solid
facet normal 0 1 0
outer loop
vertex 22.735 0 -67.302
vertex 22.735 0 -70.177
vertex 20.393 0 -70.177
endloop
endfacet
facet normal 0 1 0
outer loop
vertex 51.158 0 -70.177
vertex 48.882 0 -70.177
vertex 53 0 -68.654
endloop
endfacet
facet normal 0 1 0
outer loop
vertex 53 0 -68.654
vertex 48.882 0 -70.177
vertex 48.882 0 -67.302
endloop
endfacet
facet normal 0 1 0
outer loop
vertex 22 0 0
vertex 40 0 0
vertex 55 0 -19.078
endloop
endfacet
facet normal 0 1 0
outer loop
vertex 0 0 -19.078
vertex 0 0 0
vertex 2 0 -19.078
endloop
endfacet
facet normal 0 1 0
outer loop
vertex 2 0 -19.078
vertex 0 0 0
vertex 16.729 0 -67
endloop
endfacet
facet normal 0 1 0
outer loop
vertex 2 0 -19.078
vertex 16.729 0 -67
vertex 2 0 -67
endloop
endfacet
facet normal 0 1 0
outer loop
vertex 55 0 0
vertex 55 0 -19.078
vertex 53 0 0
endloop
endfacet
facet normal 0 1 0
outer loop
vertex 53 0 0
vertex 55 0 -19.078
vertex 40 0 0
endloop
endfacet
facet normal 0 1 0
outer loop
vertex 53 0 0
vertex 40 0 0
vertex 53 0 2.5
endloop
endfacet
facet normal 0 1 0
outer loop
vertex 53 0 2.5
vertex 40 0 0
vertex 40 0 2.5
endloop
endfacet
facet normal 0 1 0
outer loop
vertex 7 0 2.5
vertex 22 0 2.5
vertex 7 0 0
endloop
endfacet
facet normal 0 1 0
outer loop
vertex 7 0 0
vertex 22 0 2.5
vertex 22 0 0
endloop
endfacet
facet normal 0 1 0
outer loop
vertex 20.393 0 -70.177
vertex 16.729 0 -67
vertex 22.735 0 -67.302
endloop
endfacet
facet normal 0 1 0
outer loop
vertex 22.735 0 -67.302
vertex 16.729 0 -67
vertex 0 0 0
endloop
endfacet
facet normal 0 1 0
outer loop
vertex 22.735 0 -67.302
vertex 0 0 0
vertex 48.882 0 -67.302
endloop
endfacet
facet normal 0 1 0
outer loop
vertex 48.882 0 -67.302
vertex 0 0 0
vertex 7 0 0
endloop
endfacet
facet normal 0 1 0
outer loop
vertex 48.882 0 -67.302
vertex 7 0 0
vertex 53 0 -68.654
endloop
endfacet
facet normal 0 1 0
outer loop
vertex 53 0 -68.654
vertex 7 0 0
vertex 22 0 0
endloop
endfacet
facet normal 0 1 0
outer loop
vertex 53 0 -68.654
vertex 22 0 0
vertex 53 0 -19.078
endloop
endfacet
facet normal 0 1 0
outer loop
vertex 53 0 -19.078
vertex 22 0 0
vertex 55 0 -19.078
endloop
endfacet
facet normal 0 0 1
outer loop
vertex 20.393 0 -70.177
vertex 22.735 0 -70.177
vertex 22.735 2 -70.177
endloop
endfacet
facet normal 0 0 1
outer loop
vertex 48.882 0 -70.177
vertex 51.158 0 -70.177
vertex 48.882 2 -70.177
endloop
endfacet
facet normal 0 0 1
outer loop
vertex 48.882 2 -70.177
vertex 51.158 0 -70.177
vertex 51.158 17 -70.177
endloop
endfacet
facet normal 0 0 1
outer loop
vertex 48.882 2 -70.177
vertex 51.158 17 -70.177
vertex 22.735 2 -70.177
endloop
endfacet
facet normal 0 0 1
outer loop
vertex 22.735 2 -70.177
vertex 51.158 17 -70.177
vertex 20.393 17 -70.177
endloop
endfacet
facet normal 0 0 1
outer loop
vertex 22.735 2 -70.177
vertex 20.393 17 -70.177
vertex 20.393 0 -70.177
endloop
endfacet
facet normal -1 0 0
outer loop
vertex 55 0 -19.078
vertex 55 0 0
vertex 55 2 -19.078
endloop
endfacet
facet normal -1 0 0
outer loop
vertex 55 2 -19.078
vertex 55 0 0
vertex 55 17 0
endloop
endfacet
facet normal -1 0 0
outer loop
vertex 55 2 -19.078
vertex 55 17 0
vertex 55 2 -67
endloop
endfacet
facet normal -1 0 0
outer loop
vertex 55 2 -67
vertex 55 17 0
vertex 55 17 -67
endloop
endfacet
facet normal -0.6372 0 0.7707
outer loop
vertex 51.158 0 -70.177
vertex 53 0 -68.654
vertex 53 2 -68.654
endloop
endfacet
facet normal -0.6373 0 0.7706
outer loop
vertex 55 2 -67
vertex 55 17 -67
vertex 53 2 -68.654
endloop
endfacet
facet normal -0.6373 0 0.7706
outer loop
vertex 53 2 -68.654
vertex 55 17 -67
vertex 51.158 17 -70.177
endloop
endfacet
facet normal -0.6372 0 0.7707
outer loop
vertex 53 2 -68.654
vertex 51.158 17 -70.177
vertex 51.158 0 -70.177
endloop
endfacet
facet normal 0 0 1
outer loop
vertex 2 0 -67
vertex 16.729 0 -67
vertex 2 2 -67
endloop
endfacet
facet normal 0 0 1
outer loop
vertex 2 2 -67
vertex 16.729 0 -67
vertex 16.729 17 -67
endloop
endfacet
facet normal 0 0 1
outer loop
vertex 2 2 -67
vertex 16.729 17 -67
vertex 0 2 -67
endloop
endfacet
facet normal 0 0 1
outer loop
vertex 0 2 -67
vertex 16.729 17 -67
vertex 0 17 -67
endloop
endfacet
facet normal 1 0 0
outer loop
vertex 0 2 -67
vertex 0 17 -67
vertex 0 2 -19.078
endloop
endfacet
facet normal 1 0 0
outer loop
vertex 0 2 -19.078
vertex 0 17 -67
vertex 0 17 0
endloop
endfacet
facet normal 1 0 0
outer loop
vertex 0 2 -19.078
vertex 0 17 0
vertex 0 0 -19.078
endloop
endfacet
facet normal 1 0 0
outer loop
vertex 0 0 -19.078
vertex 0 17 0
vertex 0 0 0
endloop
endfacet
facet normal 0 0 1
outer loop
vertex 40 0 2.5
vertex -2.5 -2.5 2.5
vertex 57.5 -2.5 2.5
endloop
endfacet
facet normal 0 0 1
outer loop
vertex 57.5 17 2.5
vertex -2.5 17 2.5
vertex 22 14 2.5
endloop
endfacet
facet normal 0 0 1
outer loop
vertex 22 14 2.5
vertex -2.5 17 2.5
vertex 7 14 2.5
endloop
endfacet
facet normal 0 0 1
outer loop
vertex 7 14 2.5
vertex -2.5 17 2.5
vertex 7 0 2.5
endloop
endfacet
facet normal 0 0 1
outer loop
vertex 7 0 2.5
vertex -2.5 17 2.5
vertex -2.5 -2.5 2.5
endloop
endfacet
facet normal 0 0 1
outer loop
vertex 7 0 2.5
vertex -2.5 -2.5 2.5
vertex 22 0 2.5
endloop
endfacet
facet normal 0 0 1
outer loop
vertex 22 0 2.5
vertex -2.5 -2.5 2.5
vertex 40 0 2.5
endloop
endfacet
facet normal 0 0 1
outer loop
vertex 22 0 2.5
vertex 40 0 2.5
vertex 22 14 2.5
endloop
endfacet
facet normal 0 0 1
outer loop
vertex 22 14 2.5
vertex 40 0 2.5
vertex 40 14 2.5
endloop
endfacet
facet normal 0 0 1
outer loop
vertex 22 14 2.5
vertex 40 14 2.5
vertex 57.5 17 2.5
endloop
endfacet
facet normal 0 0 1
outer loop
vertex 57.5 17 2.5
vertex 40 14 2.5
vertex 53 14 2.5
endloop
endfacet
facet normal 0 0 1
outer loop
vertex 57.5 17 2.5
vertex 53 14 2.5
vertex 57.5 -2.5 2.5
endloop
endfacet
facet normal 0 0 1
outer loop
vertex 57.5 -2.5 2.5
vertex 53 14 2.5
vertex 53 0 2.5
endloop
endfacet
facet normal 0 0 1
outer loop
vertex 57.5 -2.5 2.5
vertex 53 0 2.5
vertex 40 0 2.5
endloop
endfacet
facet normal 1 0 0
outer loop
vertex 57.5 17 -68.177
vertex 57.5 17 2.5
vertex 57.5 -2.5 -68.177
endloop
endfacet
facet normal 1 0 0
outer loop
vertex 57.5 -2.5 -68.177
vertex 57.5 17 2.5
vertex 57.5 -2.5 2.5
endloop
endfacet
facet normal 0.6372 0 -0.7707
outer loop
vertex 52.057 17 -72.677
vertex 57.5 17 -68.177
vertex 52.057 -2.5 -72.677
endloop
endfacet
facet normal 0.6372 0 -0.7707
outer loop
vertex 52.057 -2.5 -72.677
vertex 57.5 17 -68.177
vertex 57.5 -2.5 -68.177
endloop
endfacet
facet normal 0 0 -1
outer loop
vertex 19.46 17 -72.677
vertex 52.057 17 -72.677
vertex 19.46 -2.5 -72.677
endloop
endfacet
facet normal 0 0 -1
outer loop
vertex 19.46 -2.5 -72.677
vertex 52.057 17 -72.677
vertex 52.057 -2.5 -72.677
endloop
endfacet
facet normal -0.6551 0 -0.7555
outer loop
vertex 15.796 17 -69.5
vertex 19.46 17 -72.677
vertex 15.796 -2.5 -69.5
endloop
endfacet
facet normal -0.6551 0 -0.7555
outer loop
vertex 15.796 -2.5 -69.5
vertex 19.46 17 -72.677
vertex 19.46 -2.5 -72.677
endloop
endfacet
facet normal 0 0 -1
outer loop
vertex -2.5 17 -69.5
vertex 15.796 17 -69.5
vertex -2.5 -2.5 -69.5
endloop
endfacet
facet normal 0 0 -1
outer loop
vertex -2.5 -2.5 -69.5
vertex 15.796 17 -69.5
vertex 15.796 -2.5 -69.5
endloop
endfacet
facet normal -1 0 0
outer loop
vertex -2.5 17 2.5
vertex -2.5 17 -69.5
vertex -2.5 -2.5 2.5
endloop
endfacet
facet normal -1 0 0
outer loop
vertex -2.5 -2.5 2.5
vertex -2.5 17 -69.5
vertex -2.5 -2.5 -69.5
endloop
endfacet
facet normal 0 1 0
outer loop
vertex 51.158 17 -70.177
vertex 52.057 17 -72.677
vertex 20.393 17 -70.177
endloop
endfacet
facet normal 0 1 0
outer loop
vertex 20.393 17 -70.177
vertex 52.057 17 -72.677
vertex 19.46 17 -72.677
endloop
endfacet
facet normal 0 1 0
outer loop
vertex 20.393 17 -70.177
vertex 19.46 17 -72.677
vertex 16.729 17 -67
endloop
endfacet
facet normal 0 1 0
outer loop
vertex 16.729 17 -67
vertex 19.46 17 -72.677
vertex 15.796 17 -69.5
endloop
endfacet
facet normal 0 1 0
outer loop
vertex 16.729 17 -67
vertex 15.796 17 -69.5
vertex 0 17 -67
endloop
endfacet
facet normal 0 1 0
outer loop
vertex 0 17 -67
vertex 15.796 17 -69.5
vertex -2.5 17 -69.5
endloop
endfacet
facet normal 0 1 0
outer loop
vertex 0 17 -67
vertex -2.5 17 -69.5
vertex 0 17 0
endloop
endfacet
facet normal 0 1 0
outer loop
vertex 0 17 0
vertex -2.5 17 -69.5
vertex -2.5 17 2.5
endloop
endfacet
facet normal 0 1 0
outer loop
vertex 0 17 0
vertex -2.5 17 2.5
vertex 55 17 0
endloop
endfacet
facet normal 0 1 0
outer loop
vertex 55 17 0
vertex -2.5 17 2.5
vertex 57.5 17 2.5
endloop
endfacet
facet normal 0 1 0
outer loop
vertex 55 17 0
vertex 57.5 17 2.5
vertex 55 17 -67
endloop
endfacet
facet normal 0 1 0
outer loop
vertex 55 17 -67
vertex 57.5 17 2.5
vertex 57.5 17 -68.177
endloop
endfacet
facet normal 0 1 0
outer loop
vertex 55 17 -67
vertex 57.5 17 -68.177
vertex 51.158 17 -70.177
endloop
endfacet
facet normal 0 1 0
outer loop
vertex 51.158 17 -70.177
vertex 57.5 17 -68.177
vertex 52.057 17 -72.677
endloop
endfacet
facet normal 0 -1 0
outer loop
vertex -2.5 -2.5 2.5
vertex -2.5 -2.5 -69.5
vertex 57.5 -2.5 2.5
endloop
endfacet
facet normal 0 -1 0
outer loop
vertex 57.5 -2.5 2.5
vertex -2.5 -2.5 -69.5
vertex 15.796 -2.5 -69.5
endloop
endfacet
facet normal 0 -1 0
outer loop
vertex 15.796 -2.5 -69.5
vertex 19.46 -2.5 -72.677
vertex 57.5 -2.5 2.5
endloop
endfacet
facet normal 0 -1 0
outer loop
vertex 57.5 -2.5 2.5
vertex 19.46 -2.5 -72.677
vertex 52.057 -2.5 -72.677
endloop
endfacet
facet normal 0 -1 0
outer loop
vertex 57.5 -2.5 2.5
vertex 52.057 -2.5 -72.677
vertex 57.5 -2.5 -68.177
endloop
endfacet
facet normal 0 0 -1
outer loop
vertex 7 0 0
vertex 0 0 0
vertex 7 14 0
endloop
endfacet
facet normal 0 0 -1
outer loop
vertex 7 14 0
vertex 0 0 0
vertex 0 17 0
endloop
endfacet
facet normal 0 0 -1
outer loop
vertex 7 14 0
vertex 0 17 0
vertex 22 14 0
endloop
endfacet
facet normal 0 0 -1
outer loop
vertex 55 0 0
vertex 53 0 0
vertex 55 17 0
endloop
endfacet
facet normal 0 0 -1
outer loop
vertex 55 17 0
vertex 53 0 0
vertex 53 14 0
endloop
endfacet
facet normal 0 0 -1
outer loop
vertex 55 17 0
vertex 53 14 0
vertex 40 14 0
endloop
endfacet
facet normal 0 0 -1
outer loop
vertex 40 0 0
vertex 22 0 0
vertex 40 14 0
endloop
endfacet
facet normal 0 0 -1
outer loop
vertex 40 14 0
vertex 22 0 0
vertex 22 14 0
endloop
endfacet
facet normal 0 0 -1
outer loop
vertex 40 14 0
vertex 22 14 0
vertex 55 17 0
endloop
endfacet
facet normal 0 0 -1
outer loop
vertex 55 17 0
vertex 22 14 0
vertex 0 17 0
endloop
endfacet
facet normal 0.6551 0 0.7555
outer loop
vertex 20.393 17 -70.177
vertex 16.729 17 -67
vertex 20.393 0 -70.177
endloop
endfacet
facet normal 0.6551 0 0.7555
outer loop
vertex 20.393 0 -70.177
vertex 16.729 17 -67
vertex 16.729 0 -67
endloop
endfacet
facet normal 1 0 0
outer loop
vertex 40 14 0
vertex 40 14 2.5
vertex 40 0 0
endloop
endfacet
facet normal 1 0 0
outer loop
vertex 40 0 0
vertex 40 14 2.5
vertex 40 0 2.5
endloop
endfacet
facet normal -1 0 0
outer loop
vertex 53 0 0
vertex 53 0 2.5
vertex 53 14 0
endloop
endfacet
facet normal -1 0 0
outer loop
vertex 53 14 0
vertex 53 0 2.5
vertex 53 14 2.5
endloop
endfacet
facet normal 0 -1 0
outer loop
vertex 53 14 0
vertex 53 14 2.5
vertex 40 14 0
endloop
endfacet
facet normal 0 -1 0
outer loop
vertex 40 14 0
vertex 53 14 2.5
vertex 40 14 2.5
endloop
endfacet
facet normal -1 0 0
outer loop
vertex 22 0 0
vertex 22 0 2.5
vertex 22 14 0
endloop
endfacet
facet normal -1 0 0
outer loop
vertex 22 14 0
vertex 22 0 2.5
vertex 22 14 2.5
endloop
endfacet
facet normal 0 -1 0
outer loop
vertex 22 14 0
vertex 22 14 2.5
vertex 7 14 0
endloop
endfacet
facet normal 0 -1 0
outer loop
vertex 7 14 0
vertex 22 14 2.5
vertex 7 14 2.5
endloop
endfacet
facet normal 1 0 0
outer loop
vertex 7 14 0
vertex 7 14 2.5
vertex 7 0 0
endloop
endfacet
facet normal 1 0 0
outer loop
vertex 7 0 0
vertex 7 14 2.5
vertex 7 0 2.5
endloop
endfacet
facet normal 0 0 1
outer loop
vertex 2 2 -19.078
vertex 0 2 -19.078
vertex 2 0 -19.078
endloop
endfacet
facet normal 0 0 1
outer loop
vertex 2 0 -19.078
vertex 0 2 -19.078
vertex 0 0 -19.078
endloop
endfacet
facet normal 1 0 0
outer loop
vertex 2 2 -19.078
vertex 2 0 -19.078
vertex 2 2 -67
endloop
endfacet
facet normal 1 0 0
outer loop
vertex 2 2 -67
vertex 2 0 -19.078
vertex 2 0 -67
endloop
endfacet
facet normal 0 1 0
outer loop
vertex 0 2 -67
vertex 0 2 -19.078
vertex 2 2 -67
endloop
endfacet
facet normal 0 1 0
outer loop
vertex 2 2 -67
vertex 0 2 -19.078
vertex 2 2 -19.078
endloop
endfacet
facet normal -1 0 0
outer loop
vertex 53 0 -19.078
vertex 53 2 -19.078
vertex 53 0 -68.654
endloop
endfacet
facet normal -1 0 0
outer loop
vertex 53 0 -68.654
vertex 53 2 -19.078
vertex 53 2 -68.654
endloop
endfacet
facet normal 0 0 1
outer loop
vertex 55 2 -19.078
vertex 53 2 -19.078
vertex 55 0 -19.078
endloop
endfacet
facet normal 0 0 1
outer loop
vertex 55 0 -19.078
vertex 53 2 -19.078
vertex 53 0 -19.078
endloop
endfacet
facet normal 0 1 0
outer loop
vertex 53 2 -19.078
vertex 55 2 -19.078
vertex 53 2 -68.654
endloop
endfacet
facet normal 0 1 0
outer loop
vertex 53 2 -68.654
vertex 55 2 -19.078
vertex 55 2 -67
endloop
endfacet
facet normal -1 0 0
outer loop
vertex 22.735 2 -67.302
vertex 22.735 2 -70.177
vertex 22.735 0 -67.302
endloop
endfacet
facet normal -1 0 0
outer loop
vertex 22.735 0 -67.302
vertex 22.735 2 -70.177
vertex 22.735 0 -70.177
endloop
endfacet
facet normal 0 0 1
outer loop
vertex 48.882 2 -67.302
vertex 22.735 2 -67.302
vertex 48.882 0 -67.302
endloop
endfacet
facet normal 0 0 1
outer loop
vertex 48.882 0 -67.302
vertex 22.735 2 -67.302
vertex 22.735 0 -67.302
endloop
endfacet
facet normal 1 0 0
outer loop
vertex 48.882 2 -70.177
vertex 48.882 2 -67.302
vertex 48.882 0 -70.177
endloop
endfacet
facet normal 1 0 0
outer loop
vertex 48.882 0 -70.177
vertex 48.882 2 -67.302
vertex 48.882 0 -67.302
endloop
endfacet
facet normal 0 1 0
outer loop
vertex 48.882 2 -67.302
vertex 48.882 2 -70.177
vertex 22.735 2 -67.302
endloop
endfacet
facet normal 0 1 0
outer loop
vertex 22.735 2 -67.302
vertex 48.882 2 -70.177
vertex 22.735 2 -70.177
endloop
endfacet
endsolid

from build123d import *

# Parameters (mm, degrees)
BOSS_EXTRUDE1_DEPTH = 17
SHELL1_T            = 2.5
SKETCH2_W           = 15
SKETCH2_H           = 14
SKETCH2_W_2         = 13
CUT_EXTRUDE1_DEPTH  = 4
SKETCH3_W           = 2
SKETCH3_H           = 50
BOSS_EXTRUDE2_DEPTH = 2
SKETCH4_W           = 26.147040262
SKETCH4_H           = 2.874772828
BOSS_EXTRUDE3_DEPTH = 2


with BuildPart() as part:
    # Sketch1 → Boss-Extrude1 (new body)
    with BuildSketch(Plane(origin=(0, 0, 0), x_dir=(1, 0, 0), z_dir=(0, 1, 0))):
        Polygon((0, 0), (0, 67), (16.729272308, 67), (20.392796314, 70.176839536), (51.157808577, 70.176839536), (55, 67), (55, 0), align=None)
    extrude(amount=BOSS_EXTRUDE1_DEPTH)

    # Shell1
    shell1_openings = [part.faces().sort_by_distance(p)[0] for p in [
        (27.740476626, 17, -34.512318995),
    ]]
    offset(amount=SHELL1_T, openings=shell1_openings, kind=Kind.INTERSECTION)

    # Sketch2 → Cut-Extrude1 (cut)
    with BuildSketch(Plane(origin=(0, 0, 0), x_dir=(-1, 0, 0), z_dir=(0, 0, -1))):
        with Locations((-14.5, 7)):
            Rectangle(SKETCH2_W, SKETCH2_H)
        with Locations((-46.5, 7)):
            Rectangle(SKETCH2_W_2, SKETCH2_H)
    extrude(amount=-CUT_EXTRUDE1_DEPTH, mode=Mode.SUBTRACT)

    # Sketch3 → Boss-Extrude2 (add)
    with BuildSketch(Plane(origin=(0, 0, 0), x_dir=(1, 0, 0), z_dir=(0, 1, 0))):
        with Locations((1, 44.078139118)):
            Rectangle(SKETCH3_W, SKETCH3_H)
        with Locations((54, 44.078139118)):
            Rectangle(SKETCH3_W, SKETCH3_H)
    extrude(amount=BOSS_EXTRUDE2_DEPTH)

    # Sketch4 → Boss-Extrude3 (add)
    with BuildSketch(Plane(origin=(0, 0, 0), x_dir=(1, 0, 0), z_dir=(0, 1, 0))):
        with Locations((35.808300775, 68.739453122)):
            Rectangle(SKETCH4_W, SKETCH4_H)
    extrude(amount=BOSS_EXTRUDE3_DEPTH)


solid = part.part
